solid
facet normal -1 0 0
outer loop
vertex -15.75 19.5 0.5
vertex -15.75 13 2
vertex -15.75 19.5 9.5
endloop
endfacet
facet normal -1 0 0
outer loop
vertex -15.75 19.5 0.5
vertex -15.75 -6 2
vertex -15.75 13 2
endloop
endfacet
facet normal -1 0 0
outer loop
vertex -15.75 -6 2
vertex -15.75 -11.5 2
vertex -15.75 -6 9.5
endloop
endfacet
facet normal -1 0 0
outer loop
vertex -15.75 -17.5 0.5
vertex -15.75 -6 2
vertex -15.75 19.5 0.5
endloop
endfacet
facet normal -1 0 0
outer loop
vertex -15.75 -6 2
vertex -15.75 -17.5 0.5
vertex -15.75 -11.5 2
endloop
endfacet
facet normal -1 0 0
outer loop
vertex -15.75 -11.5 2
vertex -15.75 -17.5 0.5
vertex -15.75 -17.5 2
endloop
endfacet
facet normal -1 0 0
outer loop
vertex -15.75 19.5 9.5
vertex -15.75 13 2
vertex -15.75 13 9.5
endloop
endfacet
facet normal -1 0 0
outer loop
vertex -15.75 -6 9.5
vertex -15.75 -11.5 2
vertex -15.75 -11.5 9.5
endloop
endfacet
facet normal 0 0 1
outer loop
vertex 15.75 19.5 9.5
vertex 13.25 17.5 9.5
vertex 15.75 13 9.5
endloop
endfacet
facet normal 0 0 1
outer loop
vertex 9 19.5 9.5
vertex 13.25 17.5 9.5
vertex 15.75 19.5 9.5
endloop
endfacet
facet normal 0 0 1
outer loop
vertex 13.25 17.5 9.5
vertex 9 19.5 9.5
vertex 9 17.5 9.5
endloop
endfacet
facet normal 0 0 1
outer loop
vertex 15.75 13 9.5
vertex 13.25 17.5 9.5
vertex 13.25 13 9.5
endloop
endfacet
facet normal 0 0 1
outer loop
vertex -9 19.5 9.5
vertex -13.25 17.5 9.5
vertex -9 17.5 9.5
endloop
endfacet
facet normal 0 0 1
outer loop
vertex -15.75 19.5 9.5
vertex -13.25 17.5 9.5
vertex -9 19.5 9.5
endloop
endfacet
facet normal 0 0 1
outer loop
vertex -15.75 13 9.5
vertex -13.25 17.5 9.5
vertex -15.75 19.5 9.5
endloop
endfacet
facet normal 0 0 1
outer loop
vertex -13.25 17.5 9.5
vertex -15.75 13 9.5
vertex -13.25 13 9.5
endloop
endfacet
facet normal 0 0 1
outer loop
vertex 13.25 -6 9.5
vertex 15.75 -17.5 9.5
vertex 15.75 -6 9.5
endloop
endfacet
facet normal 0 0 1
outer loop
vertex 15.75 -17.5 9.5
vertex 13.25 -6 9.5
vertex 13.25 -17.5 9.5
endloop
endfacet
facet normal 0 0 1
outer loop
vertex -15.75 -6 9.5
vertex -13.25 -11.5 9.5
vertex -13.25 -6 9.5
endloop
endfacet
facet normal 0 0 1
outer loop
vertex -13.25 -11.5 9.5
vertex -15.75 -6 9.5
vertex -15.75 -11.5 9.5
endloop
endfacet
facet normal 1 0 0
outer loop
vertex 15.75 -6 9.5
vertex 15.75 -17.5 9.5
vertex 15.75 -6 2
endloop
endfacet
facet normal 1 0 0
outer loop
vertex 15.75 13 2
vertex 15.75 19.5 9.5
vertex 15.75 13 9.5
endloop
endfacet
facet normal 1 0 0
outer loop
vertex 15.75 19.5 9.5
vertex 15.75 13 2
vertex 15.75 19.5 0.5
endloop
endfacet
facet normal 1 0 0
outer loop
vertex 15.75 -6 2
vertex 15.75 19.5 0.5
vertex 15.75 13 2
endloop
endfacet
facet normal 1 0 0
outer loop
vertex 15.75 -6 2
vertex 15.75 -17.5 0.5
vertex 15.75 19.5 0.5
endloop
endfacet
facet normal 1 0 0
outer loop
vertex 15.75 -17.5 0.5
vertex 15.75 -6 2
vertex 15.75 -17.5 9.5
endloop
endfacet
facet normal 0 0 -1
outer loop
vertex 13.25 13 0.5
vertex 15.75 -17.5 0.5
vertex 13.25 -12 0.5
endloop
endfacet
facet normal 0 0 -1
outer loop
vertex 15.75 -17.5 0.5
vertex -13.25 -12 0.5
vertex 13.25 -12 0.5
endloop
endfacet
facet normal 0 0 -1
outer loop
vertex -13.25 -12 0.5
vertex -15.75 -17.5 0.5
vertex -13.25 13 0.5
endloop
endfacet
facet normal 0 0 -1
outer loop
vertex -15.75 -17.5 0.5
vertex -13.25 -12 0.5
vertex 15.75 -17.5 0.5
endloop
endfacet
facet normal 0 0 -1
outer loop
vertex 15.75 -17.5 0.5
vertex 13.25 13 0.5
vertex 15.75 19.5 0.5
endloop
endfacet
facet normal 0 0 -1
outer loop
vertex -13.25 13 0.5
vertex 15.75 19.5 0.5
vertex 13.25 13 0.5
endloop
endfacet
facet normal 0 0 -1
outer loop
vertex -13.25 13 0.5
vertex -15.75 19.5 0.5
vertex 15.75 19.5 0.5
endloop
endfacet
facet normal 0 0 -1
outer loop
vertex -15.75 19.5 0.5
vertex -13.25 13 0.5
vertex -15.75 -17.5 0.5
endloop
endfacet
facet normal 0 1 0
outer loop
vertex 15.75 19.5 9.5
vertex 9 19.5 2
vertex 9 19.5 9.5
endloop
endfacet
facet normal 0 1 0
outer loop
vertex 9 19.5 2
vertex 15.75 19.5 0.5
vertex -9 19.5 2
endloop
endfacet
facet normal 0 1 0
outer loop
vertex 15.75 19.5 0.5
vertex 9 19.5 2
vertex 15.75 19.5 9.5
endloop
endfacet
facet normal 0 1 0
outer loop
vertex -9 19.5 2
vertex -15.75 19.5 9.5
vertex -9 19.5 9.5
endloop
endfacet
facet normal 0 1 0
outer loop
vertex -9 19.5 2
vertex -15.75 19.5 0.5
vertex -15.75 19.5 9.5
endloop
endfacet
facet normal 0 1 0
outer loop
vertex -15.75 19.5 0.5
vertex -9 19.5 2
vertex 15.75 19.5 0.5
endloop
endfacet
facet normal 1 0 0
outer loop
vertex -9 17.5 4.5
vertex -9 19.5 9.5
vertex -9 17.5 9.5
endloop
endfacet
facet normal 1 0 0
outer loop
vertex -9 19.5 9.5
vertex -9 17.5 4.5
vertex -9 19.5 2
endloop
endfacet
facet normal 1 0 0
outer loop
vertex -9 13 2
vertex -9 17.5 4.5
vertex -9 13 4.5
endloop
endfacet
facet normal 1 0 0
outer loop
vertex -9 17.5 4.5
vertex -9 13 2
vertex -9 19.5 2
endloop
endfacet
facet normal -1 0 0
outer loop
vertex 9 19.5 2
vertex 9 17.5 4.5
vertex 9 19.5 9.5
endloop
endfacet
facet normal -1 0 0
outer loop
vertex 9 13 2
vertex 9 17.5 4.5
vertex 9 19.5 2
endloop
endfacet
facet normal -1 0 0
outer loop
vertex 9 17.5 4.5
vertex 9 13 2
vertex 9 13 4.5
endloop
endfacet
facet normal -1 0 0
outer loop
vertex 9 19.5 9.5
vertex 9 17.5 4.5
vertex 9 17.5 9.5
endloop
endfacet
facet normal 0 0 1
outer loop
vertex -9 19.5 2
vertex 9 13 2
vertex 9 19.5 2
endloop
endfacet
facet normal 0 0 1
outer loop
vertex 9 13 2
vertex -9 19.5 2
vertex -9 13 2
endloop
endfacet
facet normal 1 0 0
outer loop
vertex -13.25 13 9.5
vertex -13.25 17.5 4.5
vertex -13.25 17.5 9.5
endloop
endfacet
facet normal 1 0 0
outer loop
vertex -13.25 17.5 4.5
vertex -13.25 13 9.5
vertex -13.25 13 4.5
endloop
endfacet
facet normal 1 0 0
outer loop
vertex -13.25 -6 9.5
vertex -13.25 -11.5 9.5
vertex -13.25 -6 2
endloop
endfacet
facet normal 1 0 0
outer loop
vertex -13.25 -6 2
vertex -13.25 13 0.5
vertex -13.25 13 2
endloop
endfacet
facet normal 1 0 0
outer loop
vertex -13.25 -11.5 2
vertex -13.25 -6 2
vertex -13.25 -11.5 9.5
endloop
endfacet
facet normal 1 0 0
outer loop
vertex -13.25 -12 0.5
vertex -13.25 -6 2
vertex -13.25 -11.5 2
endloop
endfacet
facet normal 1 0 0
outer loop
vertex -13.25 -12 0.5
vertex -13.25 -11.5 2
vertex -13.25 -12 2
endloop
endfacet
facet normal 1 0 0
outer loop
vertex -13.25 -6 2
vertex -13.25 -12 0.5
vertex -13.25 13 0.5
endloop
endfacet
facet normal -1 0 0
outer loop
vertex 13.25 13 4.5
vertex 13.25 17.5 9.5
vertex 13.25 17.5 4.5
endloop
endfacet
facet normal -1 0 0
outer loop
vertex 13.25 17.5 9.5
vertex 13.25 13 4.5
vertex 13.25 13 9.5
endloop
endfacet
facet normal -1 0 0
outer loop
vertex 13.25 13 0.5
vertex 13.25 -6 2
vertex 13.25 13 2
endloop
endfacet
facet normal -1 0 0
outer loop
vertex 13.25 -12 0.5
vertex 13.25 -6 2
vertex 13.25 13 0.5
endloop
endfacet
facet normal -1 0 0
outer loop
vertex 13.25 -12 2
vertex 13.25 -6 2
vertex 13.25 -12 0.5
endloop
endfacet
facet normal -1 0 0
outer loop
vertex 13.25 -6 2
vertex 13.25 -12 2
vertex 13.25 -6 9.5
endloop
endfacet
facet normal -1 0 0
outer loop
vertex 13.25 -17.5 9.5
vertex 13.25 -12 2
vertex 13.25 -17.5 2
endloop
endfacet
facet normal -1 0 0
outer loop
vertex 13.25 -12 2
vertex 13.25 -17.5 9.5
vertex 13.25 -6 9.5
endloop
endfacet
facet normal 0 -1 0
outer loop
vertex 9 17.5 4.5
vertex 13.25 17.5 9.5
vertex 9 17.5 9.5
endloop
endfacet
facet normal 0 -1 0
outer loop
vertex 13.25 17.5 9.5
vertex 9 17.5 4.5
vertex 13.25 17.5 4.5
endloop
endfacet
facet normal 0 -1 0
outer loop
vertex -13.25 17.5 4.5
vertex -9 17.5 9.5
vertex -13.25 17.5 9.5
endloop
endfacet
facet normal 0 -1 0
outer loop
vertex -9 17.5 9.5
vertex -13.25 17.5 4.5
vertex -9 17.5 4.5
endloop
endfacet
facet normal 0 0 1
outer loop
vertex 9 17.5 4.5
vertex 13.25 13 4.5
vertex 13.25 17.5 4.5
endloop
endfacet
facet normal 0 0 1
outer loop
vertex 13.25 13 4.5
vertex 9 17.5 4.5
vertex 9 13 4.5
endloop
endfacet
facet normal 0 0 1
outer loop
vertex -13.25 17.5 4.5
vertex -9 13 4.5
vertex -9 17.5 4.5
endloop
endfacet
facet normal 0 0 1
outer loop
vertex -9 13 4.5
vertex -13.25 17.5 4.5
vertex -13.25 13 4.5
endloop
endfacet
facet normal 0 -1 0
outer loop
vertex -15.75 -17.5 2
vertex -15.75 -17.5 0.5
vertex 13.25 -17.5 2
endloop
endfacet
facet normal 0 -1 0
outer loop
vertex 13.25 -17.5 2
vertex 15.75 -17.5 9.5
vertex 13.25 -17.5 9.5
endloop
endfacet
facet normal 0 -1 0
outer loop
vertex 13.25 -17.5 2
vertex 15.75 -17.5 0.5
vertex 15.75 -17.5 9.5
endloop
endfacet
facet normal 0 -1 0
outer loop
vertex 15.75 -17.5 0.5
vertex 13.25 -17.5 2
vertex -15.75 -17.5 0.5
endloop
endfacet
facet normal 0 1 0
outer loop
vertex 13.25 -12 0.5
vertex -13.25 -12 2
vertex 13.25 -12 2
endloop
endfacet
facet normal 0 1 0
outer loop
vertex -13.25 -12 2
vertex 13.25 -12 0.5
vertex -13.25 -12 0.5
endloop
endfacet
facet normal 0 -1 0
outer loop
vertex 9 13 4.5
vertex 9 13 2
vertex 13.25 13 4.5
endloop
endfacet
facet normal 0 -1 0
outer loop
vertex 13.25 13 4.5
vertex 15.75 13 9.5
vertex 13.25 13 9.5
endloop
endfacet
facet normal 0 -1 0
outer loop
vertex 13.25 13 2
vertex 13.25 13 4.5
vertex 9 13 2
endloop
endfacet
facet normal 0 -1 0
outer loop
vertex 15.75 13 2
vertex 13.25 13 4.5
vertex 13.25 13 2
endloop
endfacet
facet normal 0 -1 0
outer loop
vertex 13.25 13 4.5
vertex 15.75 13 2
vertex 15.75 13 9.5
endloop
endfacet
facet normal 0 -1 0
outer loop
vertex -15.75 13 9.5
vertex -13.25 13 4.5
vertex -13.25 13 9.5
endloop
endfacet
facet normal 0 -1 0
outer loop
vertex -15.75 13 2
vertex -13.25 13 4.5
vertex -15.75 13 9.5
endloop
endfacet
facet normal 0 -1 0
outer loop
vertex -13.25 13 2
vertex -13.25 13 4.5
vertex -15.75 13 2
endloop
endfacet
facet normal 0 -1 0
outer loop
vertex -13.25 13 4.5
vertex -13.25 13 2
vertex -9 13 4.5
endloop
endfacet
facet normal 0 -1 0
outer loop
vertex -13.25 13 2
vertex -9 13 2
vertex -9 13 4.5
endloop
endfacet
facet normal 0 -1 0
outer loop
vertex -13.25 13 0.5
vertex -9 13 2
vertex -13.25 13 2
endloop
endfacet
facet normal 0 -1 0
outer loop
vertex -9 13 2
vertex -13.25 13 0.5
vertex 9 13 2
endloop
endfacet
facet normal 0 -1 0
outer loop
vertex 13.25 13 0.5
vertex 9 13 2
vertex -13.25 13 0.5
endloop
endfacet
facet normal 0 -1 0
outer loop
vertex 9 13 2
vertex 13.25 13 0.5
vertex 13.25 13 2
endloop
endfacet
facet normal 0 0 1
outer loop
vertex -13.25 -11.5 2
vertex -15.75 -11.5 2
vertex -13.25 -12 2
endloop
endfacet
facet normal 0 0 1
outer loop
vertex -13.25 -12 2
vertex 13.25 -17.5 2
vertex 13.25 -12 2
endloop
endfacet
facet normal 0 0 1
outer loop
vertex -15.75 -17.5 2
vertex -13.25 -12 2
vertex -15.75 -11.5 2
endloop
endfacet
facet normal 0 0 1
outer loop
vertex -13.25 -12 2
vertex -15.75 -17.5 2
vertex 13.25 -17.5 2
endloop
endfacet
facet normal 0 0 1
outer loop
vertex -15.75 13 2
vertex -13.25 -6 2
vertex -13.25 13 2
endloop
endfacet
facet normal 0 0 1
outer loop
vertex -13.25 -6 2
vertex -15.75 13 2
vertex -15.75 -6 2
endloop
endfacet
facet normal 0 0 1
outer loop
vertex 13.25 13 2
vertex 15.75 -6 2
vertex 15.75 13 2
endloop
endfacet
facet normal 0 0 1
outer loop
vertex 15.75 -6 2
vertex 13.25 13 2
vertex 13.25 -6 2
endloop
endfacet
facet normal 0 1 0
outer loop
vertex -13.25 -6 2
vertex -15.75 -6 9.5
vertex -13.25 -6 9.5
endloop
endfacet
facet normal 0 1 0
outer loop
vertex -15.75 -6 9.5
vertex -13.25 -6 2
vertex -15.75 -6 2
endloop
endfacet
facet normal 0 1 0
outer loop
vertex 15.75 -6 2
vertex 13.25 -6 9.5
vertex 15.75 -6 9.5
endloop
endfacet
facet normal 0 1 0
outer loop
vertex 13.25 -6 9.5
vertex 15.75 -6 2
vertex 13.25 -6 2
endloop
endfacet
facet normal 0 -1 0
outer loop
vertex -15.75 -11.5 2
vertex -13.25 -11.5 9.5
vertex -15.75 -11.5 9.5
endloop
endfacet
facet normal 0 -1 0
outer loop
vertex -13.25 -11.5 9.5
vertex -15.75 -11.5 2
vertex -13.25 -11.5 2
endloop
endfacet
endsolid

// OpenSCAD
wD1Width = 26.5;
wD1Depth = 35;

//			translate([-15,-19.5,0])				rotate([0,0,0])#			import("../../Downloads/Wemos_D1_Mini_case-open.stl");

translate([0,0,5]) wemosD1Frame();

module wemosD1Frame(){
	
	difference(){
		translate([0,0,0]) color("orange") cube([wD1Width+5,wD1Depth+4,9],center=true);

		translate([0,(wD1Depth/2),2.5]) color("Fuchsia") cube([18,10,11],center=true);

		translate([0,0,2.5]) color("blue") cube([wD1Width,wD1Depth,6],center=true);

//		translate([0,3,-3]) color("green") cube([wD1Width,25,6],center=true);
		translate([0,0.5,-3]) color("green") cube([wD1Width,25,6],center=true);
		
		translate([0,-12.5,2]) color("yellow") cube([wD1Width,10,10],center=true);

		translate([0,3.5,2]) color("Gold") cube([wD1Width+6,19,10],center=true);

		translate([-14,-13.5,2]) color("Aqua") cube([11,4,10],center=true);
		translate([-14,-16.5,2]) color("Aquamarine") cube([11,4,10],center=true);
		
		translate([0,-(wD1Depth/2)-5,0]) color("Lime") cube([wD1Width+6,10,12],center=true);
	}
}
